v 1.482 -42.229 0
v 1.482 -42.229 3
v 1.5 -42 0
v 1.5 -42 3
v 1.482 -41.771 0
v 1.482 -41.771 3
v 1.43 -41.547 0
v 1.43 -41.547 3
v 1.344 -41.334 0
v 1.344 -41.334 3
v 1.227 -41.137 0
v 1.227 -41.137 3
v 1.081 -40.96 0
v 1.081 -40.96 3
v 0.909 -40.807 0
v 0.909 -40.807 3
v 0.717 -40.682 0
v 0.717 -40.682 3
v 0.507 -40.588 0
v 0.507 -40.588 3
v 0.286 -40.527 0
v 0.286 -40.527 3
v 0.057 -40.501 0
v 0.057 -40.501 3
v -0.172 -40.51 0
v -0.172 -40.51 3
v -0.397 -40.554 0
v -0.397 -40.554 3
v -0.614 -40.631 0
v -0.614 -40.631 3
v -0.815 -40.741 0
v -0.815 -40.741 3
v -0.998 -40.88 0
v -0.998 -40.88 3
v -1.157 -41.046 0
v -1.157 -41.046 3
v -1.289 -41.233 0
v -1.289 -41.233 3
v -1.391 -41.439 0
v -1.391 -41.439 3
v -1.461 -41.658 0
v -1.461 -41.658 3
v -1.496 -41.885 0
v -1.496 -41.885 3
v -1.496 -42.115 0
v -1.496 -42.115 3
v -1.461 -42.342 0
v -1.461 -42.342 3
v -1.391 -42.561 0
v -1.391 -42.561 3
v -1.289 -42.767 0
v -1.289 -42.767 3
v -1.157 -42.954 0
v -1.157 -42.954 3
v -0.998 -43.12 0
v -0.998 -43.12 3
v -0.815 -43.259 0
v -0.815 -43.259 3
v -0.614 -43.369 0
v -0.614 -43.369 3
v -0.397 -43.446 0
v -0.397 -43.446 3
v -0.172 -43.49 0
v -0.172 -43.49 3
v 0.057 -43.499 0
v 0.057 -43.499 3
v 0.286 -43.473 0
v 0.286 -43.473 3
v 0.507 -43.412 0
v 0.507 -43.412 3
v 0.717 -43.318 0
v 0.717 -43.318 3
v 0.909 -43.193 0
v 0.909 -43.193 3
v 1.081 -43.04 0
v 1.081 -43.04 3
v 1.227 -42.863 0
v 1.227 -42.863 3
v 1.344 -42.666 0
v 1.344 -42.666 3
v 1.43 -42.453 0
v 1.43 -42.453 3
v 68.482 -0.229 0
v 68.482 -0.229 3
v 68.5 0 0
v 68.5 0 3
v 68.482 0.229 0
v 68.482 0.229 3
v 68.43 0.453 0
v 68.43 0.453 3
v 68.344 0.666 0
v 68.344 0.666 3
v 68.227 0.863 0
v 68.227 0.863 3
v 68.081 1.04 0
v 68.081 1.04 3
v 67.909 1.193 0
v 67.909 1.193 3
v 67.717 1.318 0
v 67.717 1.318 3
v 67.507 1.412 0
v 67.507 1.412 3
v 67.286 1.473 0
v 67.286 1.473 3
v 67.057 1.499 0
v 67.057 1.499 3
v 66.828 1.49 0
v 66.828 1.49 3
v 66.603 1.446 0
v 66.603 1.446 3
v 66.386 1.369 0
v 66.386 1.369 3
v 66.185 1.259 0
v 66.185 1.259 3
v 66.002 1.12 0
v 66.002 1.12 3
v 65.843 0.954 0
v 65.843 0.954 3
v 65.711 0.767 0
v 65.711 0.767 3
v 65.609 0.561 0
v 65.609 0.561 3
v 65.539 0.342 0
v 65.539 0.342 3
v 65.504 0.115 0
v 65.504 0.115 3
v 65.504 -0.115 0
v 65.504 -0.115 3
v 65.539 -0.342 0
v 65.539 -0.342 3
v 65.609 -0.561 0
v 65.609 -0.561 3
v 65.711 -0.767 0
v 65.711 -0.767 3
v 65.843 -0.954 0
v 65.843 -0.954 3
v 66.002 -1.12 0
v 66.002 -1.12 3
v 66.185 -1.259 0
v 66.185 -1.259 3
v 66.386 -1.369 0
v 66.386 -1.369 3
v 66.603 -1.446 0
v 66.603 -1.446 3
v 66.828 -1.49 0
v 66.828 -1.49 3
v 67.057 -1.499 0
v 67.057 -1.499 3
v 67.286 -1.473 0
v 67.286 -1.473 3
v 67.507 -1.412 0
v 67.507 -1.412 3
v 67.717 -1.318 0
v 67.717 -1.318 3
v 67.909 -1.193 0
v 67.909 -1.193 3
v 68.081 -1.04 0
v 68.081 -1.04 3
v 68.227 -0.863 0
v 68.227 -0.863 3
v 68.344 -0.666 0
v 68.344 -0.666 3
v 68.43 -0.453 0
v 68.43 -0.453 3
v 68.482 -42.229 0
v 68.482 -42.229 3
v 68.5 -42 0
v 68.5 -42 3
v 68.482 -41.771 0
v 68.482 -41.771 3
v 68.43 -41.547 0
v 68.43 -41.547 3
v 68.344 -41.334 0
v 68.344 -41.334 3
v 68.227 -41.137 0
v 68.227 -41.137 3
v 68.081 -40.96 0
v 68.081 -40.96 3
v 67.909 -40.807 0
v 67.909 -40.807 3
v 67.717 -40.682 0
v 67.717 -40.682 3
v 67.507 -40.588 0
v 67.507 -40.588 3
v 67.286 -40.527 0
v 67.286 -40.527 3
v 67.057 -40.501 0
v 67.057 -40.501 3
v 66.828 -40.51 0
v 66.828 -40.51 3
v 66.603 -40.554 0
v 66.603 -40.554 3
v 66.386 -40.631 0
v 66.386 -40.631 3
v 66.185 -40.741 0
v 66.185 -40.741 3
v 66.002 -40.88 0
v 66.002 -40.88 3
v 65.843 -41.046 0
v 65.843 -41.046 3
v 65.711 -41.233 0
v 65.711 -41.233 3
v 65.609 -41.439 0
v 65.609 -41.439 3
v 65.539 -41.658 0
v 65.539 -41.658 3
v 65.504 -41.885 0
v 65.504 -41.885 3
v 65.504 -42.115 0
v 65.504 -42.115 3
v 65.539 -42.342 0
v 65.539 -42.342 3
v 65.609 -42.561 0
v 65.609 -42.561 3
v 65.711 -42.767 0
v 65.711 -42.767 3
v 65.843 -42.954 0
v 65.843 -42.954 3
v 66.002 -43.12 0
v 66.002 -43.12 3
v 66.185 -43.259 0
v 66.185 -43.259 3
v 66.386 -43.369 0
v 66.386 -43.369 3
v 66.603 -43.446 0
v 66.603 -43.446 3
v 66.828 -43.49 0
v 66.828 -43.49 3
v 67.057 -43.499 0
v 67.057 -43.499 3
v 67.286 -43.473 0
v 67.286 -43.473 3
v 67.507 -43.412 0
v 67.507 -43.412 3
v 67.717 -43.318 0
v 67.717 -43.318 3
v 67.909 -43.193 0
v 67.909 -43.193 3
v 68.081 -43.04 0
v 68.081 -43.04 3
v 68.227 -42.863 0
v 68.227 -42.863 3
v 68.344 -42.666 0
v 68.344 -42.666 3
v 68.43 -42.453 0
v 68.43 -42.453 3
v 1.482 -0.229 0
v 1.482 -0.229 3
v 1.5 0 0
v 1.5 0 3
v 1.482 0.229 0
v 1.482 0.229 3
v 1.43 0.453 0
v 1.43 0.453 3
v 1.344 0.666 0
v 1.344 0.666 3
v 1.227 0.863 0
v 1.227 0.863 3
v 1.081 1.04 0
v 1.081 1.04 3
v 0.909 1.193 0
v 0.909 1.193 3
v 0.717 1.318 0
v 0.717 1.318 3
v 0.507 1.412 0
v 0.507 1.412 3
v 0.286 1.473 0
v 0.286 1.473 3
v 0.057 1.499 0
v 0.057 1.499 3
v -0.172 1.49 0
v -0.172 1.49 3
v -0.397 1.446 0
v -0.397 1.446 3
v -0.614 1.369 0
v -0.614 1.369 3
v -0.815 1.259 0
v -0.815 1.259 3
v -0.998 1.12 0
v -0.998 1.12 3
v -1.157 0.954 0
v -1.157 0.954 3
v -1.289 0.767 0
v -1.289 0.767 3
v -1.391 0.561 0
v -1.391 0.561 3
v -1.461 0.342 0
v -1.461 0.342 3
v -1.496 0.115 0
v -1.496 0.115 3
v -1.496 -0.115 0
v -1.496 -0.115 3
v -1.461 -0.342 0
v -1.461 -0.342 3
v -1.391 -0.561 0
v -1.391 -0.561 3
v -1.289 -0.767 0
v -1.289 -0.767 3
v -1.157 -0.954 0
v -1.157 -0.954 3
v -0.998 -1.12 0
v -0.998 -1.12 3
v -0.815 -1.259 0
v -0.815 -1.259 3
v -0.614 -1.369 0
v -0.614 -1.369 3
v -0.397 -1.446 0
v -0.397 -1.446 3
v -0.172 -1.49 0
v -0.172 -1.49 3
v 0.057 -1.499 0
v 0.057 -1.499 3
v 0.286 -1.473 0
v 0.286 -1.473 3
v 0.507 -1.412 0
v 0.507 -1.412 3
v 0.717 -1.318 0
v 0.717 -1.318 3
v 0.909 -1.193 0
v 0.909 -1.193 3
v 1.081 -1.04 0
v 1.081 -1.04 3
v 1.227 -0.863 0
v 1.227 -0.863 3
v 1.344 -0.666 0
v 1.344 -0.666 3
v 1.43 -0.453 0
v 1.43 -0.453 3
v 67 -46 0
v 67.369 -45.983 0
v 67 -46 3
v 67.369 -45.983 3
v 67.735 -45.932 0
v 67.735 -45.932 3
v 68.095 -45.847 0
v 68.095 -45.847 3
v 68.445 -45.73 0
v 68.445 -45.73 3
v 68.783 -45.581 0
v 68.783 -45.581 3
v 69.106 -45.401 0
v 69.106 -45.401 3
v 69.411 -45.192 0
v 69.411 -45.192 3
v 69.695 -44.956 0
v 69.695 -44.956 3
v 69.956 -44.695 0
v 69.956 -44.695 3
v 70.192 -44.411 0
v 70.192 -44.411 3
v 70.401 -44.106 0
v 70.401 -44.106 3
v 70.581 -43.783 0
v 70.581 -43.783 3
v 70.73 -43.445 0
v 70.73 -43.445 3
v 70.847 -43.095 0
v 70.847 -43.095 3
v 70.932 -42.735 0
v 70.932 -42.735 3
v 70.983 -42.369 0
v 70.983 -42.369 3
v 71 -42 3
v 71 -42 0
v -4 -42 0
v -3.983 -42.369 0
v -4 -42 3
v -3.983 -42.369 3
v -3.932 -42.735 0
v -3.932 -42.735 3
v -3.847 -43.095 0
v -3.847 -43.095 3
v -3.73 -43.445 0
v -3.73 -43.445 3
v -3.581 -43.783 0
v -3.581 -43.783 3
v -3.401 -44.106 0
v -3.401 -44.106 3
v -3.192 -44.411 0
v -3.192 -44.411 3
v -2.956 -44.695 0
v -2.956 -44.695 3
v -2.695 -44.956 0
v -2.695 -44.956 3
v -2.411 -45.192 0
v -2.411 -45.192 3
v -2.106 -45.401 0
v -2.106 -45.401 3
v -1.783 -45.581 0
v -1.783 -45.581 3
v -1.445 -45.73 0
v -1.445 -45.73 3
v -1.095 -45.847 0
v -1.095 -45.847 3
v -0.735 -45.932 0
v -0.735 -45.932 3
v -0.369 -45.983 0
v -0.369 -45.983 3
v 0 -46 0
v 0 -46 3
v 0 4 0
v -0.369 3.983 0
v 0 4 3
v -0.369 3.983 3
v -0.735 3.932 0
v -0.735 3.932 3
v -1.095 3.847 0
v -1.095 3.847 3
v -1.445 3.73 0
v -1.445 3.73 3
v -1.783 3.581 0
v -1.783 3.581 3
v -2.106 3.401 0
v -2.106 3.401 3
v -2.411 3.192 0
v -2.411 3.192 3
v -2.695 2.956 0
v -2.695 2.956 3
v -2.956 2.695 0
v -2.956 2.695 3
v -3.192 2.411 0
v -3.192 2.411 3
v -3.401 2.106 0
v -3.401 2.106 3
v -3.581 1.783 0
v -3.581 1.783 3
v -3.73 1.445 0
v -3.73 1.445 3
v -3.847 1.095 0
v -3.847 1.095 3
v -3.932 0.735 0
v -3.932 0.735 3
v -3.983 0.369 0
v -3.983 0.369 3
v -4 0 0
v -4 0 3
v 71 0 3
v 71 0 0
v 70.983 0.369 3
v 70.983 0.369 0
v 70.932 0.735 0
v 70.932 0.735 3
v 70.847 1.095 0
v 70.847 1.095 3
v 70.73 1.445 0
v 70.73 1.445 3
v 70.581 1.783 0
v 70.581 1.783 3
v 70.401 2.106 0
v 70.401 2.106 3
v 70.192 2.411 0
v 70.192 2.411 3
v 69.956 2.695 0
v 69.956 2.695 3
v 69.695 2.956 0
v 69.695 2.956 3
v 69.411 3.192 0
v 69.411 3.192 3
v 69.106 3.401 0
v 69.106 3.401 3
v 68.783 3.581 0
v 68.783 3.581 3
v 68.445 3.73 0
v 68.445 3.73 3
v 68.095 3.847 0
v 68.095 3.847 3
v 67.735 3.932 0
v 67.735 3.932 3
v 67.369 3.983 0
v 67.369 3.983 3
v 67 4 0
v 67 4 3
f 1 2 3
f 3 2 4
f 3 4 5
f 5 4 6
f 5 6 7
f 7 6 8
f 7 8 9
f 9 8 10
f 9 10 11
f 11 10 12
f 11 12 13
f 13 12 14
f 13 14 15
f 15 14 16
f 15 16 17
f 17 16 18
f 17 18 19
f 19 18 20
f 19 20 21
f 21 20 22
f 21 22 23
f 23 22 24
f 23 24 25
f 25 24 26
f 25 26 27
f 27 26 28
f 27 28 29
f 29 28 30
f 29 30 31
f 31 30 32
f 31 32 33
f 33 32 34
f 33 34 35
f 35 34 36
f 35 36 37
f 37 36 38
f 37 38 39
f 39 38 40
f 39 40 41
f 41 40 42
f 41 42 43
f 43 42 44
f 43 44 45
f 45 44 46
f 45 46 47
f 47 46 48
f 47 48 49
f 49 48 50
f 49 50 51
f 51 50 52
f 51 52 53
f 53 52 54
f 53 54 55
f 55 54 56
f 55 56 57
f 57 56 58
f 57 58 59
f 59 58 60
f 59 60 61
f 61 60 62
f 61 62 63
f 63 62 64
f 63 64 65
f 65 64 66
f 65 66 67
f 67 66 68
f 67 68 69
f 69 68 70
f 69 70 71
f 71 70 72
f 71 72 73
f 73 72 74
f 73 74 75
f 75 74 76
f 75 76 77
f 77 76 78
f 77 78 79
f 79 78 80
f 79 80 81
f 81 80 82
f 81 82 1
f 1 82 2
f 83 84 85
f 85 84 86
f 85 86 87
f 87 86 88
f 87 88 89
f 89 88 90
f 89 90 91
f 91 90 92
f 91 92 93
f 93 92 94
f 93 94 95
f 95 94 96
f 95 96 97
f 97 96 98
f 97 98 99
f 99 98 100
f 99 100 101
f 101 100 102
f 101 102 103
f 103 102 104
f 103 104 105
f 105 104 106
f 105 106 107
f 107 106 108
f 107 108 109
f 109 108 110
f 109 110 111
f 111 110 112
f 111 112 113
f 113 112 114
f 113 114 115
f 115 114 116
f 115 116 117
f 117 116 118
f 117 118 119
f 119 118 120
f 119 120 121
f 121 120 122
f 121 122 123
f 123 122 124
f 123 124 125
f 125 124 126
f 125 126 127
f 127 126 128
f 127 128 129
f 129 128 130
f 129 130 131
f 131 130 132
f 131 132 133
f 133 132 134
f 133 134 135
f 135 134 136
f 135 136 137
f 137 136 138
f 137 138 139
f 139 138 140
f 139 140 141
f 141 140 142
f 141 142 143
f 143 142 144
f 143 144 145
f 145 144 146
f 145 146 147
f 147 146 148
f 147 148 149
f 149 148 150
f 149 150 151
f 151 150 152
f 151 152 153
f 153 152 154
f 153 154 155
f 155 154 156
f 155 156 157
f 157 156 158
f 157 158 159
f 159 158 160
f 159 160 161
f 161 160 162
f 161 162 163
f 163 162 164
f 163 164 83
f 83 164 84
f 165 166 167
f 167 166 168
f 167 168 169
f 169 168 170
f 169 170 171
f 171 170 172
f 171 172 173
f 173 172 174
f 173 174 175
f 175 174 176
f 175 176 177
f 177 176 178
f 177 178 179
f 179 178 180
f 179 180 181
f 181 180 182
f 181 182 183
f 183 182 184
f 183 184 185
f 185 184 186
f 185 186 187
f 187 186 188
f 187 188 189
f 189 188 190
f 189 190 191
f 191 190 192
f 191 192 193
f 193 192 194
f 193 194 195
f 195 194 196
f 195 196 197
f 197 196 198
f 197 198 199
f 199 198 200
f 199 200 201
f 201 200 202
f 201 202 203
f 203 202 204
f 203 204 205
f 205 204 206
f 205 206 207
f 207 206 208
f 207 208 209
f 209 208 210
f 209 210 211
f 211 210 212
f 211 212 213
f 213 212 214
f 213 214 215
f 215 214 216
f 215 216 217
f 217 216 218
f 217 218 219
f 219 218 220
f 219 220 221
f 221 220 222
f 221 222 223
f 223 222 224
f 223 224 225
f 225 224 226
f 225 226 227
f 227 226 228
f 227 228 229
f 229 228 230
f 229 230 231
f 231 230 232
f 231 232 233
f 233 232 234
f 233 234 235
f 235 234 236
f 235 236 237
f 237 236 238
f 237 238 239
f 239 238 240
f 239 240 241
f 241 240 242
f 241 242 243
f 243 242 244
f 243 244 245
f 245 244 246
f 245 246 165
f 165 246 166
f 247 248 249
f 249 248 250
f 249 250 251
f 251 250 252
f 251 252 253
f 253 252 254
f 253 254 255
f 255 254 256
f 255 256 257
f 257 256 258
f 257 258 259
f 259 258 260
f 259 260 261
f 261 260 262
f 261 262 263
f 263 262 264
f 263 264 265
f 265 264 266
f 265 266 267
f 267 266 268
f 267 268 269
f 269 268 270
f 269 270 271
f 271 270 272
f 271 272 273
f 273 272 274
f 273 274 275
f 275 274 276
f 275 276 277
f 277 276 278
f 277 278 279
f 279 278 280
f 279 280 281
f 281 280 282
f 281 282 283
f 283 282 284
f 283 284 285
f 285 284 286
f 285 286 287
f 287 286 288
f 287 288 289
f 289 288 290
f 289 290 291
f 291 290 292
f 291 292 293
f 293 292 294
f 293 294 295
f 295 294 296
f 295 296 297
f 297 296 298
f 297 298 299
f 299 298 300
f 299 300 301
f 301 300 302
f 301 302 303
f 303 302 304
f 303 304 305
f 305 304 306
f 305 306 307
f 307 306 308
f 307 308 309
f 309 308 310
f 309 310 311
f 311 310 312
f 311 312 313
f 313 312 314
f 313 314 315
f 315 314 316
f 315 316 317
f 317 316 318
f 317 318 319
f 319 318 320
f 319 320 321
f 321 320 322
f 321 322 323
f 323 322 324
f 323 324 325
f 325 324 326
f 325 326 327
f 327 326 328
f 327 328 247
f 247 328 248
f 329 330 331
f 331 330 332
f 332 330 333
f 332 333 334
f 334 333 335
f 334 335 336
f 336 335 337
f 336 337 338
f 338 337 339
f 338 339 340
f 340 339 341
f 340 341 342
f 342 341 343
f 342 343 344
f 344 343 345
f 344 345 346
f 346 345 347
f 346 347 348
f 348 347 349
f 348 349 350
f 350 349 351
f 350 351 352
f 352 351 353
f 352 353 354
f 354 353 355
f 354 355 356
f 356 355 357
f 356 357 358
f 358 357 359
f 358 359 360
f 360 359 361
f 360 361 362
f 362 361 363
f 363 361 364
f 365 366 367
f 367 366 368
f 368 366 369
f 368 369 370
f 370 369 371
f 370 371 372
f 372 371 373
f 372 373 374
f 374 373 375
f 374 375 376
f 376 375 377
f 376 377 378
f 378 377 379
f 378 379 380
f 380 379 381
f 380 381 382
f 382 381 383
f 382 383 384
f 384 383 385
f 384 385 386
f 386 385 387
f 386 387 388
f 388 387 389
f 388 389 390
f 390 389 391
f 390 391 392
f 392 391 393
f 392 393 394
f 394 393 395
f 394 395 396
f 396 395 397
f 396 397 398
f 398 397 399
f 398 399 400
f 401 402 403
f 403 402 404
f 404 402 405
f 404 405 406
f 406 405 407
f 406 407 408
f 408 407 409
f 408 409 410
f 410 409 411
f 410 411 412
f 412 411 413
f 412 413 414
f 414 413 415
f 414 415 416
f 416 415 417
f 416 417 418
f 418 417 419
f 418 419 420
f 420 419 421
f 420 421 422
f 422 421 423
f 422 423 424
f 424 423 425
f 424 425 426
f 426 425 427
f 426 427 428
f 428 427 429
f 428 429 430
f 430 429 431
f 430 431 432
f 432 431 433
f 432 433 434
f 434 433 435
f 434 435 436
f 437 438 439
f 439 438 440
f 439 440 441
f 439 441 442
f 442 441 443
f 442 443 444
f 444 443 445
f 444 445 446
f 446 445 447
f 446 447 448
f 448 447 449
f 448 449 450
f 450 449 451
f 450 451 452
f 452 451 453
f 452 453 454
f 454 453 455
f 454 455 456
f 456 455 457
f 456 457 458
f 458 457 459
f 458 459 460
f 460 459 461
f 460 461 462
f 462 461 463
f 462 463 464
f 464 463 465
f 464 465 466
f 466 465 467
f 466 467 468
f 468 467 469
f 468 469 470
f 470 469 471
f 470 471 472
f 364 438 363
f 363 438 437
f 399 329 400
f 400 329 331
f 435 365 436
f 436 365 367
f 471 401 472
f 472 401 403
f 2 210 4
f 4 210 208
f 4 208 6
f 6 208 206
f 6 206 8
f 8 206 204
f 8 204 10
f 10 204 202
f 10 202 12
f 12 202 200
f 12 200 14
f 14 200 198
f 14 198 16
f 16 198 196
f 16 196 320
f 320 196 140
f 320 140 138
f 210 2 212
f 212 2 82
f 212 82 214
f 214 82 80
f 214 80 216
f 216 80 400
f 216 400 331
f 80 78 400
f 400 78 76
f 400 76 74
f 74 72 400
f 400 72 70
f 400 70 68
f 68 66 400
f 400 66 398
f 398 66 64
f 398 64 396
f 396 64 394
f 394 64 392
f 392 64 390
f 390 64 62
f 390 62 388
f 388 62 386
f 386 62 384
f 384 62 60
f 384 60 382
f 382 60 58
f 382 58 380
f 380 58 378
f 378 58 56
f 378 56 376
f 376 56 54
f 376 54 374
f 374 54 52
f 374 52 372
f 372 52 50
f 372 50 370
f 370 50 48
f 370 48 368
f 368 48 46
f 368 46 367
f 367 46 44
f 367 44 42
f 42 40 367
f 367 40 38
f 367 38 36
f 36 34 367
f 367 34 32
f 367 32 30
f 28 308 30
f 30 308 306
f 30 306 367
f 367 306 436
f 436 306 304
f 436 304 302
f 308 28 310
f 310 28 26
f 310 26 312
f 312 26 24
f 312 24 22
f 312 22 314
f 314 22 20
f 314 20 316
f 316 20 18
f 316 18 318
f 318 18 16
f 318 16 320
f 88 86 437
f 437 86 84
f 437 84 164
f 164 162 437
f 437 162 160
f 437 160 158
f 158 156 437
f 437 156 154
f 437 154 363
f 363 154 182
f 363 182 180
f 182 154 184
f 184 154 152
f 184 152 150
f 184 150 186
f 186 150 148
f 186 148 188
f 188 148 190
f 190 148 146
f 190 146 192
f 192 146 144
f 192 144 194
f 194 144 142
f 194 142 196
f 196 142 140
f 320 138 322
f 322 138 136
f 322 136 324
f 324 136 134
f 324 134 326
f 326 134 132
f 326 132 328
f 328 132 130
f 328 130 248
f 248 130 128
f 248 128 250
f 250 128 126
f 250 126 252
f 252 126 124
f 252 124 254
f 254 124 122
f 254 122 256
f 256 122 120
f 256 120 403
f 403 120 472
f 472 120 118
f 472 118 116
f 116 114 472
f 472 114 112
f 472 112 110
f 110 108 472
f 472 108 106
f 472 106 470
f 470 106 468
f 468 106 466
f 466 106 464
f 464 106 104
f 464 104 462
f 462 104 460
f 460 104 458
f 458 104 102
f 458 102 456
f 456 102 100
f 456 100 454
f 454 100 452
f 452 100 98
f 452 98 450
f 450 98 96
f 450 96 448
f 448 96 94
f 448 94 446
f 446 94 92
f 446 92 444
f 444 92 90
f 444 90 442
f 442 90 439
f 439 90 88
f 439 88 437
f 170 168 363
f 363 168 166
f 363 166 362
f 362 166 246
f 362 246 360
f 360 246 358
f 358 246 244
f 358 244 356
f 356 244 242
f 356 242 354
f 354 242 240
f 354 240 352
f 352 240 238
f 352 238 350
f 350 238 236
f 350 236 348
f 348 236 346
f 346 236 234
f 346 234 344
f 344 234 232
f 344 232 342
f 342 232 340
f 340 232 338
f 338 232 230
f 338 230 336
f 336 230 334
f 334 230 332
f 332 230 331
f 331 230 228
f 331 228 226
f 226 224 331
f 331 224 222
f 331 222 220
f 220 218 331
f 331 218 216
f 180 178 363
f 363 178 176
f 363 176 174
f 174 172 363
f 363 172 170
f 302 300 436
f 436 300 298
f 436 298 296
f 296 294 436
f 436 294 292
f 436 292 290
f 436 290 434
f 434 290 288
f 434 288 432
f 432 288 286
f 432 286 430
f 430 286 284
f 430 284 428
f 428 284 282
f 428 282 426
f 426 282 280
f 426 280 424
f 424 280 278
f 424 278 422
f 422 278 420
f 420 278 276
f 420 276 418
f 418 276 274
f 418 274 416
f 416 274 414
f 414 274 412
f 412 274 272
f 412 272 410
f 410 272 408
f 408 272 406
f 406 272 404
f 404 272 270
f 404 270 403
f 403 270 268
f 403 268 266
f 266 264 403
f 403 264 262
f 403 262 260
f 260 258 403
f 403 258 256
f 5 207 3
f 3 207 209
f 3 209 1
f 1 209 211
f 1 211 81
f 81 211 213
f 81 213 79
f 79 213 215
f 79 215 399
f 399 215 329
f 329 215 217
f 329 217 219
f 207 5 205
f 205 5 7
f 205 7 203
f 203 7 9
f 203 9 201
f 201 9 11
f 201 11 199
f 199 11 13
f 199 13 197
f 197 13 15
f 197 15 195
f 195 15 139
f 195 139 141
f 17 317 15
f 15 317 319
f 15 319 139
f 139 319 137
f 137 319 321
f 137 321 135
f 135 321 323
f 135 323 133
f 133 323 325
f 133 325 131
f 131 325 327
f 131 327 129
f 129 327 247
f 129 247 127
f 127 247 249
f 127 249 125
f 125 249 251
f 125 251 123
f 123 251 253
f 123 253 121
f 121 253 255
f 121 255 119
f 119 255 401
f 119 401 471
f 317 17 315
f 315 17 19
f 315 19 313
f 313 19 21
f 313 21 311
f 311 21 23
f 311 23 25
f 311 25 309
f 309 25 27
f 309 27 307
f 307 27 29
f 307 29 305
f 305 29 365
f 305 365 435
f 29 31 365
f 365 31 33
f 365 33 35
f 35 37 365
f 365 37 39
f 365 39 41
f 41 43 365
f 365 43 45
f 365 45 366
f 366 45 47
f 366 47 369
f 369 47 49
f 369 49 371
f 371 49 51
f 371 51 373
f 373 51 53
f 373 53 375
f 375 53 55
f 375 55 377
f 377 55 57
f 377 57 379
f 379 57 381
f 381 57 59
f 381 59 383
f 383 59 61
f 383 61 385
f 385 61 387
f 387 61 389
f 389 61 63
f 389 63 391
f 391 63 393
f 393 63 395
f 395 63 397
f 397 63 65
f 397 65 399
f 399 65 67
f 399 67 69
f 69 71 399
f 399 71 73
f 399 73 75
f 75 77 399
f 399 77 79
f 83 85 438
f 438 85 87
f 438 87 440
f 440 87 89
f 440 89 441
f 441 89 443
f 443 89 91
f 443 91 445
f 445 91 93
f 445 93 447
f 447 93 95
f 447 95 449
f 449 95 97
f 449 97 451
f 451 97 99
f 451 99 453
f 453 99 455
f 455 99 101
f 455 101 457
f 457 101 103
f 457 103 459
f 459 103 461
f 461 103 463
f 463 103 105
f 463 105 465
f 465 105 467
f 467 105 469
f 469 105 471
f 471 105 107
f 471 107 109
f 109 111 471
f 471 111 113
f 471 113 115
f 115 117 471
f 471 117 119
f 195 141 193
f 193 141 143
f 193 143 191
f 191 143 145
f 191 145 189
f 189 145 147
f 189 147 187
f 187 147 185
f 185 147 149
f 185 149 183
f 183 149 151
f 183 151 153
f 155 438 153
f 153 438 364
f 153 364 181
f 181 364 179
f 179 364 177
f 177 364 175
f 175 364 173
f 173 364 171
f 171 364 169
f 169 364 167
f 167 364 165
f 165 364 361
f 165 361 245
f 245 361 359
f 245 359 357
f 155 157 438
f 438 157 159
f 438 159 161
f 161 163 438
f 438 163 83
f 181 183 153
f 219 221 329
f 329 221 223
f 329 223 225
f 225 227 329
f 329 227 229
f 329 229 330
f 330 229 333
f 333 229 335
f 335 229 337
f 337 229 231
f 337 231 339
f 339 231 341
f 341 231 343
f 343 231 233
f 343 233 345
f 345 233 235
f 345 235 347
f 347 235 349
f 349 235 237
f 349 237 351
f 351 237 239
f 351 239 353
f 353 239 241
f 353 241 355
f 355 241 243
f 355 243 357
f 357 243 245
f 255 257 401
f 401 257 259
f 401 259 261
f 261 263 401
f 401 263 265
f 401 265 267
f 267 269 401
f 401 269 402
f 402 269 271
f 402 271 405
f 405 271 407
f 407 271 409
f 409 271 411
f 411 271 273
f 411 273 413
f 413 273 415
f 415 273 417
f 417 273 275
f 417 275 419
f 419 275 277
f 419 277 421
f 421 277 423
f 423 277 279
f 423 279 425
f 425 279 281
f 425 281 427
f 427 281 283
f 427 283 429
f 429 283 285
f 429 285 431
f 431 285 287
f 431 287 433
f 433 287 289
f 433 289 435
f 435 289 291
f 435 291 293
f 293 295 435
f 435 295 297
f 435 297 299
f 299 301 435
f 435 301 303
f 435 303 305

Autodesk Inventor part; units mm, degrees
ref_plane "YZ Plane" through (0, 0, 0) normal (1, 0, 0) x (0, 1, 0)
ref_plane "XZ Plane" through (0, 0, 0) normal (0, 1, 0) x (-1, 0, 0)
ref_plane "XY Plane" through (0, 0, 0) normal (0, 0, 1) x (1, 0, 0)
sketch "Sketch1" plane through (0, 0, 0) normal (0, 0, 1) x (1, 0, 0)
  circle A0 centre (67, 0) radius 1.5 projected
  circle A1 centre (67, 0) radius 4 projected
  circle A2 centre (67, -42) radius 1.5 projected
  circle A3 centre (67, -42) radius 4 projected
  circle A4 centre (0, -42) radius 1.5 projected
  circle A5 centre (0, -42) radius 4 projected
  circle A6 centre (0, 0) radius 1.5 projected
  circle A7 centre (0, 0) radius 4 projected
  line L0 (67, 4) -> (0, 4)
  line L1 (-4, 0) -> (-4, -42)
  line L2 (0, -46) -> (67, -46)
  line L3 (71, -42) -> (71, 0)
  point P0 (0, 0)
extrude "Extrusion1" add sketch "Sketch1" along normal blind 3 contours A0 | A1 | L3 A3 L2 A5 L1 A7 L0 A1 | A3 | A7 | A5 | A2 | A4 | A6
sketch "Sketch2" plane through (0, 0, 3) normal (0, 0, 1) x (1, 0, 0)
  line L0 (67, 4) -> (0, 4) projected
  arc A0 (0, 4) -> (-4, 0) centre (0, 0) ccw projected
  line L1 (-4, 0) -> (-4, -42) projected
  arc A1 (-4, -42) -> (0, -46) centre (0, -42) ccw projected
  line L2 (0, -46) -> (67, -46) projected
  arc A2 (67, -46) -> (71, -42) centre (67, -42) ccw projected
  line L3 (71, -42) -> (71, 0) projected
  arc A3 (71, 0) -> (67, 4) centre (67, 0) ccw projected
  circle A4 centre (67, 0) radius 1.5 projected
  circle A5 centre (67, -42) radius 1.5 projected
  circle A6 centre (0, -42) radius 1.5 projected
  circle A7 centre (0, 0) radius 1.5 projected
  point P0 (0, 0)
extrude "Extrusion2" cut sketch "Sketch2" against normal through all contours A4 | A5 | A6 | A7
properties part number "cellSTORM_v5_miniElectronics_lid"
